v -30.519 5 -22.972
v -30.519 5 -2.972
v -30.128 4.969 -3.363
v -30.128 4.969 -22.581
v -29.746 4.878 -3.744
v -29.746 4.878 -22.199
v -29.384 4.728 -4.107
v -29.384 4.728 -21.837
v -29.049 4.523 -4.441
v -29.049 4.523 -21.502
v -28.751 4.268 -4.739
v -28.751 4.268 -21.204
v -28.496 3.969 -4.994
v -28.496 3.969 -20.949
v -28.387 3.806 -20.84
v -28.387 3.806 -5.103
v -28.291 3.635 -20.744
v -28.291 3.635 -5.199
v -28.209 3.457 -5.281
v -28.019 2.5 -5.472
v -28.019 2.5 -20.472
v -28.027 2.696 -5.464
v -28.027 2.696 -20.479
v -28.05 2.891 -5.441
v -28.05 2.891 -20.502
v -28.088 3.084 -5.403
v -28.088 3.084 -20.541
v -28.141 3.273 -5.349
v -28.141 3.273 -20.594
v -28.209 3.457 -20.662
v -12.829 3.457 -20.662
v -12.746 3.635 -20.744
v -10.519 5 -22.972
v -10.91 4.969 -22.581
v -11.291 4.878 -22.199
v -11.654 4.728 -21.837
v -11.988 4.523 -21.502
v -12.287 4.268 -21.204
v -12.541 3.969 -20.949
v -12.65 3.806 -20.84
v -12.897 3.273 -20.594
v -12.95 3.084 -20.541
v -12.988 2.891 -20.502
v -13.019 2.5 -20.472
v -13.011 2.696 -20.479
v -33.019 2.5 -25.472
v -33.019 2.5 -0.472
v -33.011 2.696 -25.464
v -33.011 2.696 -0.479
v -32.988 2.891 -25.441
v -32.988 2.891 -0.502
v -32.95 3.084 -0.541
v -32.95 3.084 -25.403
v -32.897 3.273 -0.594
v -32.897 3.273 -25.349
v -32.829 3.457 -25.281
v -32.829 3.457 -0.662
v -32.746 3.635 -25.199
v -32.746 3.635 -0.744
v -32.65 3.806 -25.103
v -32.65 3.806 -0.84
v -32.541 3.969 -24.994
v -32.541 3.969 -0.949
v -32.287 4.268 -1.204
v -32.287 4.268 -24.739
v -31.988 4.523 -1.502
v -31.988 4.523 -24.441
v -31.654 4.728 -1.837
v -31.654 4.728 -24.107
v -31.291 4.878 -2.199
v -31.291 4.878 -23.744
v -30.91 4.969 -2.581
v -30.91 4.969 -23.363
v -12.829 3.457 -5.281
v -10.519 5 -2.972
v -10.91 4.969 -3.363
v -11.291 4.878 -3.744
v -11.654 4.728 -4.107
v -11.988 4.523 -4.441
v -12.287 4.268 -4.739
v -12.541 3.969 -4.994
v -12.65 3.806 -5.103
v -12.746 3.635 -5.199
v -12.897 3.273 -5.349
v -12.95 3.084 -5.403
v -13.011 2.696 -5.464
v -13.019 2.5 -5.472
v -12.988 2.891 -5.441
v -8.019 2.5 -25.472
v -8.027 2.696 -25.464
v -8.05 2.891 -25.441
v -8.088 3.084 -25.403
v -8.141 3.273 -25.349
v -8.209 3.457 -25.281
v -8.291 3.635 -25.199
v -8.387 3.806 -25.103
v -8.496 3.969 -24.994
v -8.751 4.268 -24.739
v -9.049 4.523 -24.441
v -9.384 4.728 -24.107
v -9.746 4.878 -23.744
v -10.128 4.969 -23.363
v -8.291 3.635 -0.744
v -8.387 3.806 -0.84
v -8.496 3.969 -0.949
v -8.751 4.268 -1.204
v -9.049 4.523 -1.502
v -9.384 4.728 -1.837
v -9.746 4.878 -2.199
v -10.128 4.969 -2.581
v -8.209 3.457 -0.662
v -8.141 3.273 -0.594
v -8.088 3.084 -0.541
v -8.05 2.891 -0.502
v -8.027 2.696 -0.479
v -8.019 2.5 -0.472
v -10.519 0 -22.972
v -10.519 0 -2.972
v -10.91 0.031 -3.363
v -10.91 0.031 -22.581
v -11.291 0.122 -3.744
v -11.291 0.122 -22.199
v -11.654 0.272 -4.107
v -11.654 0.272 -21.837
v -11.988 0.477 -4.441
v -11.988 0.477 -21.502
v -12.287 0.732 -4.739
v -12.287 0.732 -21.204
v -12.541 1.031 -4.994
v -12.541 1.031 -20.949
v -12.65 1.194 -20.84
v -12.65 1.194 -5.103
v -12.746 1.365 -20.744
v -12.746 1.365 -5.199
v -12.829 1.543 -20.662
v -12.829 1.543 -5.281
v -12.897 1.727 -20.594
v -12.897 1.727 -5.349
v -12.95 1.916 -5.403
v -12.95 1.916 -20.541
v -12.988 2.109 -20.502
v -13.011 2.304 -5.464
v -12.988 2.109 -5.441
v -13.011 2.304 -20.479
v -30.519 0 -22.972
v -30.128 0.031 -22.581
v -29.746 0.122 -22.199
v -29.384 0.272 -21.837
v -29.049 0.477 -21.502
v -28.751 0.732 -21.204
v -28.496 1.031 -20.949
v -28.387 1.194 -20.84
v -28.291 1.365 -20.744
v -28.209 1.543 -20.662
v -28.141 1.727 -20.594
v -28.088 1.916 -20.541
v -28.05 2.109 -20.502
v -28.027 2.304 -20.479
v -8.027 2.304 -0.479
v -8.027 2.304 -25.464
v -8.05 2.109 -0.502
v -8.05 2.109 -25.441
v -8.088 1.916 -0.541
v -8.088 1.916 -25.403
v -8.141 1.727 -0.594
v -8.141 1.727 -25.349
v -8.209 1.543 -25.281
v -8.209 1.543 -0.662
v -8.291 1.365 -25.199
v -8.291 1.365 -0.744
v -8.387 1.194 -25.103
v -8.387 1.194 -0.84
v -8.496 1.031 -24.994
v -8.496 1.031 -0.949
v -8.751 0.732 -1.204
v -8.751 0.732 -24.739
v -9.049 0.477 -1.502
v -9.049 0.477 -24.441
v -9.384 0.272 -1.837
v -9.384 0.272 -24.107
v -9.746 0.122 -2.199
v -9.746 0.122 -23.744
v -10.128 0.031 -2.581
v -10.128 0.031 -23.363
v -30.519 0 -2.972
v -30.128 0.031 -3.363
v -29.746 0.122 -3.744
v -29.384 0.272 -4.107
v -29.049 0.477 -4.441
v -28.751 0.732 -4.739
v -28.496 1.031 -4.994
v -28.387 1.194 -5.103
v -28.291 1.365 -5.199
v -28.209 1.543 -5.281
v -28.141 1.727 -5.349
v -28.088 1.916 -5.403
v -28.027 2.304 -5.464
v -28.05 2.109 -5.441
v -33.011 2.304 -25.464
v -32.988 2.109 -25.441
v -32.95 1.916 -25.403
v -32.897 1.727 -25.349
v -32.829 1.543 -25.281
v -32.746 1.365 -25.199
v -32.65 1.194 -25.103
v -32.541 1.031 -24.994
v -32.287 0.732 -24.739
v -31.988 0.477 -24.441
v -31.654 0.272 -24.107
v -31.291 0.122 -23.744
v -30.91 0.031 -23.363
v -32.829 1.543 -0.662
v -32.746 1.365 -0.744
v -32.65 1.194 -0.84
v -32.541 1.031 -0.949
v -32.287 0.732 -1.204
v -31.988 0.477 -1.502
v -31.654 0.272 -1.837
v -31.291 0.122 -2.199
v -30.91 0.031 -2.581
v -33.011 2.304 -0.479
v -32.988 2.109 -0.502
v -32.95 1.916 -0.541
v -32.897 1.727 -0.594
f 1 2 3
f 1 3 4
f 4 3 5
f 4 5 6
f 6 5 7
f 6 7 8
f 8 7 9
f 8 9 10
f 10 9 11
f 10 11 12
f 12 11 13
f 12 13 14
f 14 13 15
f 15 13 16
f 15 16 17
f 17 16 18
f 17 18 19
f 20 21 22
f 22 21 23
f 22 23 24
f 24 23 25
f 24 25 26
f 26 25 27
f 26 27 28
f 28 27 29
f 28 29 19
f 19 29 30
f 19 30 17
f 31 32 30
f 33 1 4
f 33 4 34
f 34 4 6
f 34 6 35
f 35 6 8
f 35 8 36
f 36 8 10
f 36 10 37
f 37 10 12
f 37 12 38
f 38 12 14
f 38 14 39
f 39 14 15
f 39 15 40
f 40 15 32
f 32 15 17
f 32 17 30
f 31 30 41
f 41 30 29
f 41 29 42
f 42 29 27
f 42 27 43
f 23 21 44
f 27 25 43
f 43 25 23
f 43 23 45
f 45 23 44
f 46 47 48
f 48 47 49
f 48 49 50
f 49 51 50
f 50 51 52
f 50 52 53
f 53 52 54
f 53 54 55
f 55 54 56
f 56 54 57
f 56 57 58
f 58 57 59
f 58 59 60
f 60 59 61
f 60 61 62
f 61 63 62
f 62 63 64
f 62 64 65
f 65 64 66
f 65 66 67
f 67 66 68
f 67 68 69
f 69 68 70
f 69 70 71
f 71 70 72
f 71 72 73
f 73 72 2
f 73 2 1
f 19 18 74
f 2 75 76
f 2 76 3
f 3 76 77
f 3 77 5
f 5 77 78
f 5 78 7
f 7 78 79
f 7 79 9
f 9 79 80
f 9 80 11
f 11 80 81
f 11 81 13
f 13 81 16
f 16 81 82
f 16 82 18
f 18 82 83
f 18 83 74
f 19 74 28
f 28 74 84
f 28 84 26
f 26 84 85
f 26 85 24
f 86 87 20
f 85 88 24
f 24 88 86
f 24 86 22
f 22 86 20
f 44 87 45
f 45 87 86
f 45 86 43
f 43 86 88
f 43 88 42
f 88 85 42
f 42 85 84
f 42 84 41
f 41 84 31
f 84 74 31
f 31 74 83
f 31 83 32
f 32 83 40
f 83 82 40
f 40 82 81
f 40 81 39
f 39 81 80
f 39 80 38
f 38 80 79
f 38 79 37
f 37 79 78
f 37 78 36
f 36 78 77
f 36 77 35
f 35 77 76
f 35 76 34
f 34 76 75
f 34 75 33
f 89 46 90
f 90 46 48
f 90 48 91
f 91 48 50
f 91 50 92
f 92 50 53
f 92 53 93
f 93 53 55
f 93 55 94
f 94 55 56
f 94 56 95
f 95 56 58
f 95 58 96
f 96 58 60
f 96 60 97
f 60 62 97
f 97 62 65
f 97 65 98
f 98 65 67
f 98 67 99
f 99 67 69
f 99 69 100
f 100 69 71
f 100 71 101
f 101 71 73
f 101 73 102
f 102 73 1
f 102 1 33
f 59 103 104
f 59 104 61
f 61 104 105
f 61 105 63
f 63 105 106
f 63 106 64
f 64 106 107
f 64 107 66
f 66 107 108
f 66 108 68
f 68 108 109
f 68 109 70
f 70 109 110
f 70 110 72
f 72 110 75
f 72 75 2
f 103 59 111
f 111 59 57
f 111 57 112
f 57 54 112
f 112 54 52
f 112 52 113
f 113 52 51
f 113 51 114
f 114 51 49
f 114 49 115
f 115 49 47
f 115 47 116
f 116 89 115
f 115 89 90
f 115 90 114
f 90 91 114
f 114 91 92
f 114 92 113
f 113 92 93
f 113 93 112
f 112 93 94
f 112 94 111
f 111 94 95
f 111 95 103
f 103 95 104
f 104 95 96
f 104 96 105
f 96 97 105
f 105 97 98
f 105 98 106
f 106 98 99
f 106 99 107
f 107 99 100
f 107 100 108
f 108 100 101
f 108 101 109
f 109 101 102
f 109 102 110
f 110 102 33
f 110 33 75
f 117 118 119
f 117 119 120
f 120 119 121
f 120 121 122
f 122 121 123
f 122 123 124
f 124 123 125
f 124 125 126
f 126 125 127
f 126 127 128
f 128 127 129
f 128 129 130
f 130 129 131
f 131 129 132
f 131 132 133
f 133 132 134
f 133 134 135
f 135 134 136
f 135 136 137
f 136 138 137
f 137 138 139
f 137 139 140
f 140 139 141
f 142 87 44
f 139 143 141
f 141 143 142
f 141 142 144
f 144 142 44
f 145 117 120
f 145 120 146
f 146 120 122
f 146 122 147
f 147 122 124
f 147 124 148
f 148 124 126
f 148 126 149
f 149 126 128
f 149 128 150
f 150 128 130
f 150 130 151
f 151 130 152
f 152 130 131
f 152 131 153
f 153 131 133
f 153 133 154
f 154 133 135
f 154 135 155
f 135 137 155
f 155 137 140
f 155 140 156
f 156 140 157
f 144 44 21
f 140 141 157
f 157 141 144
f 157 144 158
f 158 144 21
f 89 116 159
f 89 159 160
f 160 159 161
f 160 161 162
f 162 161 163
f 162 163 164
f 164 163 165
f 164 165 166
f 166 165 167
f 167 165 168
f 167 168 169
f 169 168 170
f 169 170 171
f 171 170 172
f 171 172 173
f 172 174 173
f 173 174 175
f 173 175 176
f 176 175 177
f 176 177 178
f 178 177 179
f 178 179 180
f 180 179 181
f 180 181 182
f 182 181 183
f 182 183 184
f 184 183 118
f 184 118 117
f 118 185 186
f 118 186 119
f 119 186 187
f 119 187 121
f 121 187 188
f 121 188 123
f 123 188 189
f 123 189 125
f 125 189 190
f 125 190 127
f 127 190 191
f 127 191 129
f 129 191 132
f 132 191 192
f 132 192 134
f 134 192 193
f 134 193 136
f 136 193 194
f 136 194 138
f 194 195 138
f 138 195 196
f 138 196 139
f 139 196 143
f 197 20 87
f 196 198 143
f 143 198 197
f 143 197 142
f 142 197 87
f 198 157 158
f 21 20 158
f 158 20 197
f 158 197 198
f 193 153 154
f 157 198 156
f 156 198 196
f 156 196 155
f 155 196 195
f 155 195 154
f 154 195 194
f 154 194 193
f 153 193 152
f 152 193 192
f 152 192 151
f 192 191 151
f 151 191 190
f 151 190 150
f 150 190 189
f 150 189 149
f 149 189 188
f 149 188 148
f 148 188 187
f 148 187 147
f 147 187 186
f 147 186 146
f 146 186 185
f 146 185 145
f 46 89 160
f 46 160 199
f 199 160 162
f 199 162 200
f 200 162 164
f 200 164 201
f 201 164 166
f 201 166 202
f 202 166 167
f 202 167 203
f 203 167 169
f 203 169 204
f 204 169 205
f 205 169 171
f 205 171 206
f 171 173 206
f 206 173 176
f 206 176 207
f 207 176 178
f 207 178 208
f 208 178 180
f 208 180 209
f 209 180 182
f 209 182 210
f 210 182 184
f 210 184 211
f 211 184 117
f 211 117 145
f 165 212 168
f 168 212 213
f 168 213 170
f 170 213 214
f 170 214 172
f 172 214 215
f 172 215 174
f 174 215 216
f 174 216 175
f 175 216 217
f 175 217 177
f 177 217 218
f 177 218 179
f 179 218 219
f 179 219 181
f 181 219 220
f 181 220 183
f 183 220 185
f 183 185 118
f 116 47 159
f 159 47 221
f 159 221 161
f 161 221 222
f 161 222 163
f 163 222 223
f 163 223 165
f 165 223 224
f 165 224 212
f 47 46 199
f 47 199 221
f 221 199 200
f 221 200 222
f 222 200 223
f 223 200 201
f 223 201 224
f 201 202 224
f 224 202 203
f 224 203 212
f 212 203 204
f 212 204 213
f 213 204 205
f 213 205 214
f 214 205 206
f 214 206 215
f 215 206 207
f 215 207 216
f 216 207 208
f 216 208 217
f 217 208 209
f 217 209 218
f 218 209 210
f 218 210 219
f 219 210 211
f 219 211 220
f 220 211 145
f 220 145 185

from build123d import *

# Parameters (mm, degrees)
SKETCH1_W           = 25
SKETCH1_H           = 25
BOSS_EXTRUDE1_DEPTH = 5
SKETCH2_W           = 15
SKETCH2_H           = 15
CUT_EXTRUDE1_DEPTH  = 5
FILLET1_R           = 2.5
FILLET2_R           = 2.5


with BuildPart() as part:
    # Sketch1 → Boss-Extrude1 (new body)
    with BuildSketch(Plane(origin=(0, 0, 0), x_dir=(1, 0, 0), z_dir=(0, 1, 0))):
        with Locations((-20.518867925, 12.971698113)):
            Rectangle(SKETCH1_W, SKETCH1_H)
    extrude(amount=BOSS_EXTRUDE1_DEPTH)

    # Sketch2 → Cut-Extrude1 (cut)
    with BuildSketch(Plane(origin=(0, 5, 0), x_dir=(1, 0, 0), z_dir=(0, 1, 0))):
        with Locations((-20.518867925, 12.971698113)):
            Rectangle(SKETCH2_W, SKETCH2_H)
    extrude(amount=-CUT_EXTRUDE1_DEPTH, mode=Mode.SUBTRACT)

    # Fillet1
    fillet1_edges = [part.edges().sort_by_distance(p)[0] for p in [
        (-20.518867925, 5, -0.471698113),
        (-33.018867925, 5, -12.971698113),
        (-28.018867925, 5, -12.971698113),
        (-20.518867925, 5, -5.471698113),
        (-13.018867925, 5, -12.971698113),
        (-20.518867925, 5, -20.471698113),
        (-20.518867925, 5, -25.471698113),
        (-8.018867925, 5, -12.971698113),
    ]]
    fillet(fillet1_edges, radius=FILLET1_R - 0.0001)  # a hair under: the kernel refuses the full size

    # Fillet2
    fillet2_edges = [part.edges().sort_by_distance(p)[0] for p in [
        (-33.018867925, 0, -12.971698113),
        (-20.518867925, 0, -0.471698113),
        (-8.018867925, 0, -12.971698113),
        (-20.518867925, 0, -25.471698113),
        (-20.518867925, 0, -20.471698113),
        (-13.018867925, 0, -12.971698113),
        (-20.518867925, 0, -5.471698113),
        (-28.018867925, 0, -12.971698113),
    ]]
    fillet(fillet2_edges, radius=FILLET2_R - 0.0001)  # a hair under: the kernel refuses the full size


solid = part.part
